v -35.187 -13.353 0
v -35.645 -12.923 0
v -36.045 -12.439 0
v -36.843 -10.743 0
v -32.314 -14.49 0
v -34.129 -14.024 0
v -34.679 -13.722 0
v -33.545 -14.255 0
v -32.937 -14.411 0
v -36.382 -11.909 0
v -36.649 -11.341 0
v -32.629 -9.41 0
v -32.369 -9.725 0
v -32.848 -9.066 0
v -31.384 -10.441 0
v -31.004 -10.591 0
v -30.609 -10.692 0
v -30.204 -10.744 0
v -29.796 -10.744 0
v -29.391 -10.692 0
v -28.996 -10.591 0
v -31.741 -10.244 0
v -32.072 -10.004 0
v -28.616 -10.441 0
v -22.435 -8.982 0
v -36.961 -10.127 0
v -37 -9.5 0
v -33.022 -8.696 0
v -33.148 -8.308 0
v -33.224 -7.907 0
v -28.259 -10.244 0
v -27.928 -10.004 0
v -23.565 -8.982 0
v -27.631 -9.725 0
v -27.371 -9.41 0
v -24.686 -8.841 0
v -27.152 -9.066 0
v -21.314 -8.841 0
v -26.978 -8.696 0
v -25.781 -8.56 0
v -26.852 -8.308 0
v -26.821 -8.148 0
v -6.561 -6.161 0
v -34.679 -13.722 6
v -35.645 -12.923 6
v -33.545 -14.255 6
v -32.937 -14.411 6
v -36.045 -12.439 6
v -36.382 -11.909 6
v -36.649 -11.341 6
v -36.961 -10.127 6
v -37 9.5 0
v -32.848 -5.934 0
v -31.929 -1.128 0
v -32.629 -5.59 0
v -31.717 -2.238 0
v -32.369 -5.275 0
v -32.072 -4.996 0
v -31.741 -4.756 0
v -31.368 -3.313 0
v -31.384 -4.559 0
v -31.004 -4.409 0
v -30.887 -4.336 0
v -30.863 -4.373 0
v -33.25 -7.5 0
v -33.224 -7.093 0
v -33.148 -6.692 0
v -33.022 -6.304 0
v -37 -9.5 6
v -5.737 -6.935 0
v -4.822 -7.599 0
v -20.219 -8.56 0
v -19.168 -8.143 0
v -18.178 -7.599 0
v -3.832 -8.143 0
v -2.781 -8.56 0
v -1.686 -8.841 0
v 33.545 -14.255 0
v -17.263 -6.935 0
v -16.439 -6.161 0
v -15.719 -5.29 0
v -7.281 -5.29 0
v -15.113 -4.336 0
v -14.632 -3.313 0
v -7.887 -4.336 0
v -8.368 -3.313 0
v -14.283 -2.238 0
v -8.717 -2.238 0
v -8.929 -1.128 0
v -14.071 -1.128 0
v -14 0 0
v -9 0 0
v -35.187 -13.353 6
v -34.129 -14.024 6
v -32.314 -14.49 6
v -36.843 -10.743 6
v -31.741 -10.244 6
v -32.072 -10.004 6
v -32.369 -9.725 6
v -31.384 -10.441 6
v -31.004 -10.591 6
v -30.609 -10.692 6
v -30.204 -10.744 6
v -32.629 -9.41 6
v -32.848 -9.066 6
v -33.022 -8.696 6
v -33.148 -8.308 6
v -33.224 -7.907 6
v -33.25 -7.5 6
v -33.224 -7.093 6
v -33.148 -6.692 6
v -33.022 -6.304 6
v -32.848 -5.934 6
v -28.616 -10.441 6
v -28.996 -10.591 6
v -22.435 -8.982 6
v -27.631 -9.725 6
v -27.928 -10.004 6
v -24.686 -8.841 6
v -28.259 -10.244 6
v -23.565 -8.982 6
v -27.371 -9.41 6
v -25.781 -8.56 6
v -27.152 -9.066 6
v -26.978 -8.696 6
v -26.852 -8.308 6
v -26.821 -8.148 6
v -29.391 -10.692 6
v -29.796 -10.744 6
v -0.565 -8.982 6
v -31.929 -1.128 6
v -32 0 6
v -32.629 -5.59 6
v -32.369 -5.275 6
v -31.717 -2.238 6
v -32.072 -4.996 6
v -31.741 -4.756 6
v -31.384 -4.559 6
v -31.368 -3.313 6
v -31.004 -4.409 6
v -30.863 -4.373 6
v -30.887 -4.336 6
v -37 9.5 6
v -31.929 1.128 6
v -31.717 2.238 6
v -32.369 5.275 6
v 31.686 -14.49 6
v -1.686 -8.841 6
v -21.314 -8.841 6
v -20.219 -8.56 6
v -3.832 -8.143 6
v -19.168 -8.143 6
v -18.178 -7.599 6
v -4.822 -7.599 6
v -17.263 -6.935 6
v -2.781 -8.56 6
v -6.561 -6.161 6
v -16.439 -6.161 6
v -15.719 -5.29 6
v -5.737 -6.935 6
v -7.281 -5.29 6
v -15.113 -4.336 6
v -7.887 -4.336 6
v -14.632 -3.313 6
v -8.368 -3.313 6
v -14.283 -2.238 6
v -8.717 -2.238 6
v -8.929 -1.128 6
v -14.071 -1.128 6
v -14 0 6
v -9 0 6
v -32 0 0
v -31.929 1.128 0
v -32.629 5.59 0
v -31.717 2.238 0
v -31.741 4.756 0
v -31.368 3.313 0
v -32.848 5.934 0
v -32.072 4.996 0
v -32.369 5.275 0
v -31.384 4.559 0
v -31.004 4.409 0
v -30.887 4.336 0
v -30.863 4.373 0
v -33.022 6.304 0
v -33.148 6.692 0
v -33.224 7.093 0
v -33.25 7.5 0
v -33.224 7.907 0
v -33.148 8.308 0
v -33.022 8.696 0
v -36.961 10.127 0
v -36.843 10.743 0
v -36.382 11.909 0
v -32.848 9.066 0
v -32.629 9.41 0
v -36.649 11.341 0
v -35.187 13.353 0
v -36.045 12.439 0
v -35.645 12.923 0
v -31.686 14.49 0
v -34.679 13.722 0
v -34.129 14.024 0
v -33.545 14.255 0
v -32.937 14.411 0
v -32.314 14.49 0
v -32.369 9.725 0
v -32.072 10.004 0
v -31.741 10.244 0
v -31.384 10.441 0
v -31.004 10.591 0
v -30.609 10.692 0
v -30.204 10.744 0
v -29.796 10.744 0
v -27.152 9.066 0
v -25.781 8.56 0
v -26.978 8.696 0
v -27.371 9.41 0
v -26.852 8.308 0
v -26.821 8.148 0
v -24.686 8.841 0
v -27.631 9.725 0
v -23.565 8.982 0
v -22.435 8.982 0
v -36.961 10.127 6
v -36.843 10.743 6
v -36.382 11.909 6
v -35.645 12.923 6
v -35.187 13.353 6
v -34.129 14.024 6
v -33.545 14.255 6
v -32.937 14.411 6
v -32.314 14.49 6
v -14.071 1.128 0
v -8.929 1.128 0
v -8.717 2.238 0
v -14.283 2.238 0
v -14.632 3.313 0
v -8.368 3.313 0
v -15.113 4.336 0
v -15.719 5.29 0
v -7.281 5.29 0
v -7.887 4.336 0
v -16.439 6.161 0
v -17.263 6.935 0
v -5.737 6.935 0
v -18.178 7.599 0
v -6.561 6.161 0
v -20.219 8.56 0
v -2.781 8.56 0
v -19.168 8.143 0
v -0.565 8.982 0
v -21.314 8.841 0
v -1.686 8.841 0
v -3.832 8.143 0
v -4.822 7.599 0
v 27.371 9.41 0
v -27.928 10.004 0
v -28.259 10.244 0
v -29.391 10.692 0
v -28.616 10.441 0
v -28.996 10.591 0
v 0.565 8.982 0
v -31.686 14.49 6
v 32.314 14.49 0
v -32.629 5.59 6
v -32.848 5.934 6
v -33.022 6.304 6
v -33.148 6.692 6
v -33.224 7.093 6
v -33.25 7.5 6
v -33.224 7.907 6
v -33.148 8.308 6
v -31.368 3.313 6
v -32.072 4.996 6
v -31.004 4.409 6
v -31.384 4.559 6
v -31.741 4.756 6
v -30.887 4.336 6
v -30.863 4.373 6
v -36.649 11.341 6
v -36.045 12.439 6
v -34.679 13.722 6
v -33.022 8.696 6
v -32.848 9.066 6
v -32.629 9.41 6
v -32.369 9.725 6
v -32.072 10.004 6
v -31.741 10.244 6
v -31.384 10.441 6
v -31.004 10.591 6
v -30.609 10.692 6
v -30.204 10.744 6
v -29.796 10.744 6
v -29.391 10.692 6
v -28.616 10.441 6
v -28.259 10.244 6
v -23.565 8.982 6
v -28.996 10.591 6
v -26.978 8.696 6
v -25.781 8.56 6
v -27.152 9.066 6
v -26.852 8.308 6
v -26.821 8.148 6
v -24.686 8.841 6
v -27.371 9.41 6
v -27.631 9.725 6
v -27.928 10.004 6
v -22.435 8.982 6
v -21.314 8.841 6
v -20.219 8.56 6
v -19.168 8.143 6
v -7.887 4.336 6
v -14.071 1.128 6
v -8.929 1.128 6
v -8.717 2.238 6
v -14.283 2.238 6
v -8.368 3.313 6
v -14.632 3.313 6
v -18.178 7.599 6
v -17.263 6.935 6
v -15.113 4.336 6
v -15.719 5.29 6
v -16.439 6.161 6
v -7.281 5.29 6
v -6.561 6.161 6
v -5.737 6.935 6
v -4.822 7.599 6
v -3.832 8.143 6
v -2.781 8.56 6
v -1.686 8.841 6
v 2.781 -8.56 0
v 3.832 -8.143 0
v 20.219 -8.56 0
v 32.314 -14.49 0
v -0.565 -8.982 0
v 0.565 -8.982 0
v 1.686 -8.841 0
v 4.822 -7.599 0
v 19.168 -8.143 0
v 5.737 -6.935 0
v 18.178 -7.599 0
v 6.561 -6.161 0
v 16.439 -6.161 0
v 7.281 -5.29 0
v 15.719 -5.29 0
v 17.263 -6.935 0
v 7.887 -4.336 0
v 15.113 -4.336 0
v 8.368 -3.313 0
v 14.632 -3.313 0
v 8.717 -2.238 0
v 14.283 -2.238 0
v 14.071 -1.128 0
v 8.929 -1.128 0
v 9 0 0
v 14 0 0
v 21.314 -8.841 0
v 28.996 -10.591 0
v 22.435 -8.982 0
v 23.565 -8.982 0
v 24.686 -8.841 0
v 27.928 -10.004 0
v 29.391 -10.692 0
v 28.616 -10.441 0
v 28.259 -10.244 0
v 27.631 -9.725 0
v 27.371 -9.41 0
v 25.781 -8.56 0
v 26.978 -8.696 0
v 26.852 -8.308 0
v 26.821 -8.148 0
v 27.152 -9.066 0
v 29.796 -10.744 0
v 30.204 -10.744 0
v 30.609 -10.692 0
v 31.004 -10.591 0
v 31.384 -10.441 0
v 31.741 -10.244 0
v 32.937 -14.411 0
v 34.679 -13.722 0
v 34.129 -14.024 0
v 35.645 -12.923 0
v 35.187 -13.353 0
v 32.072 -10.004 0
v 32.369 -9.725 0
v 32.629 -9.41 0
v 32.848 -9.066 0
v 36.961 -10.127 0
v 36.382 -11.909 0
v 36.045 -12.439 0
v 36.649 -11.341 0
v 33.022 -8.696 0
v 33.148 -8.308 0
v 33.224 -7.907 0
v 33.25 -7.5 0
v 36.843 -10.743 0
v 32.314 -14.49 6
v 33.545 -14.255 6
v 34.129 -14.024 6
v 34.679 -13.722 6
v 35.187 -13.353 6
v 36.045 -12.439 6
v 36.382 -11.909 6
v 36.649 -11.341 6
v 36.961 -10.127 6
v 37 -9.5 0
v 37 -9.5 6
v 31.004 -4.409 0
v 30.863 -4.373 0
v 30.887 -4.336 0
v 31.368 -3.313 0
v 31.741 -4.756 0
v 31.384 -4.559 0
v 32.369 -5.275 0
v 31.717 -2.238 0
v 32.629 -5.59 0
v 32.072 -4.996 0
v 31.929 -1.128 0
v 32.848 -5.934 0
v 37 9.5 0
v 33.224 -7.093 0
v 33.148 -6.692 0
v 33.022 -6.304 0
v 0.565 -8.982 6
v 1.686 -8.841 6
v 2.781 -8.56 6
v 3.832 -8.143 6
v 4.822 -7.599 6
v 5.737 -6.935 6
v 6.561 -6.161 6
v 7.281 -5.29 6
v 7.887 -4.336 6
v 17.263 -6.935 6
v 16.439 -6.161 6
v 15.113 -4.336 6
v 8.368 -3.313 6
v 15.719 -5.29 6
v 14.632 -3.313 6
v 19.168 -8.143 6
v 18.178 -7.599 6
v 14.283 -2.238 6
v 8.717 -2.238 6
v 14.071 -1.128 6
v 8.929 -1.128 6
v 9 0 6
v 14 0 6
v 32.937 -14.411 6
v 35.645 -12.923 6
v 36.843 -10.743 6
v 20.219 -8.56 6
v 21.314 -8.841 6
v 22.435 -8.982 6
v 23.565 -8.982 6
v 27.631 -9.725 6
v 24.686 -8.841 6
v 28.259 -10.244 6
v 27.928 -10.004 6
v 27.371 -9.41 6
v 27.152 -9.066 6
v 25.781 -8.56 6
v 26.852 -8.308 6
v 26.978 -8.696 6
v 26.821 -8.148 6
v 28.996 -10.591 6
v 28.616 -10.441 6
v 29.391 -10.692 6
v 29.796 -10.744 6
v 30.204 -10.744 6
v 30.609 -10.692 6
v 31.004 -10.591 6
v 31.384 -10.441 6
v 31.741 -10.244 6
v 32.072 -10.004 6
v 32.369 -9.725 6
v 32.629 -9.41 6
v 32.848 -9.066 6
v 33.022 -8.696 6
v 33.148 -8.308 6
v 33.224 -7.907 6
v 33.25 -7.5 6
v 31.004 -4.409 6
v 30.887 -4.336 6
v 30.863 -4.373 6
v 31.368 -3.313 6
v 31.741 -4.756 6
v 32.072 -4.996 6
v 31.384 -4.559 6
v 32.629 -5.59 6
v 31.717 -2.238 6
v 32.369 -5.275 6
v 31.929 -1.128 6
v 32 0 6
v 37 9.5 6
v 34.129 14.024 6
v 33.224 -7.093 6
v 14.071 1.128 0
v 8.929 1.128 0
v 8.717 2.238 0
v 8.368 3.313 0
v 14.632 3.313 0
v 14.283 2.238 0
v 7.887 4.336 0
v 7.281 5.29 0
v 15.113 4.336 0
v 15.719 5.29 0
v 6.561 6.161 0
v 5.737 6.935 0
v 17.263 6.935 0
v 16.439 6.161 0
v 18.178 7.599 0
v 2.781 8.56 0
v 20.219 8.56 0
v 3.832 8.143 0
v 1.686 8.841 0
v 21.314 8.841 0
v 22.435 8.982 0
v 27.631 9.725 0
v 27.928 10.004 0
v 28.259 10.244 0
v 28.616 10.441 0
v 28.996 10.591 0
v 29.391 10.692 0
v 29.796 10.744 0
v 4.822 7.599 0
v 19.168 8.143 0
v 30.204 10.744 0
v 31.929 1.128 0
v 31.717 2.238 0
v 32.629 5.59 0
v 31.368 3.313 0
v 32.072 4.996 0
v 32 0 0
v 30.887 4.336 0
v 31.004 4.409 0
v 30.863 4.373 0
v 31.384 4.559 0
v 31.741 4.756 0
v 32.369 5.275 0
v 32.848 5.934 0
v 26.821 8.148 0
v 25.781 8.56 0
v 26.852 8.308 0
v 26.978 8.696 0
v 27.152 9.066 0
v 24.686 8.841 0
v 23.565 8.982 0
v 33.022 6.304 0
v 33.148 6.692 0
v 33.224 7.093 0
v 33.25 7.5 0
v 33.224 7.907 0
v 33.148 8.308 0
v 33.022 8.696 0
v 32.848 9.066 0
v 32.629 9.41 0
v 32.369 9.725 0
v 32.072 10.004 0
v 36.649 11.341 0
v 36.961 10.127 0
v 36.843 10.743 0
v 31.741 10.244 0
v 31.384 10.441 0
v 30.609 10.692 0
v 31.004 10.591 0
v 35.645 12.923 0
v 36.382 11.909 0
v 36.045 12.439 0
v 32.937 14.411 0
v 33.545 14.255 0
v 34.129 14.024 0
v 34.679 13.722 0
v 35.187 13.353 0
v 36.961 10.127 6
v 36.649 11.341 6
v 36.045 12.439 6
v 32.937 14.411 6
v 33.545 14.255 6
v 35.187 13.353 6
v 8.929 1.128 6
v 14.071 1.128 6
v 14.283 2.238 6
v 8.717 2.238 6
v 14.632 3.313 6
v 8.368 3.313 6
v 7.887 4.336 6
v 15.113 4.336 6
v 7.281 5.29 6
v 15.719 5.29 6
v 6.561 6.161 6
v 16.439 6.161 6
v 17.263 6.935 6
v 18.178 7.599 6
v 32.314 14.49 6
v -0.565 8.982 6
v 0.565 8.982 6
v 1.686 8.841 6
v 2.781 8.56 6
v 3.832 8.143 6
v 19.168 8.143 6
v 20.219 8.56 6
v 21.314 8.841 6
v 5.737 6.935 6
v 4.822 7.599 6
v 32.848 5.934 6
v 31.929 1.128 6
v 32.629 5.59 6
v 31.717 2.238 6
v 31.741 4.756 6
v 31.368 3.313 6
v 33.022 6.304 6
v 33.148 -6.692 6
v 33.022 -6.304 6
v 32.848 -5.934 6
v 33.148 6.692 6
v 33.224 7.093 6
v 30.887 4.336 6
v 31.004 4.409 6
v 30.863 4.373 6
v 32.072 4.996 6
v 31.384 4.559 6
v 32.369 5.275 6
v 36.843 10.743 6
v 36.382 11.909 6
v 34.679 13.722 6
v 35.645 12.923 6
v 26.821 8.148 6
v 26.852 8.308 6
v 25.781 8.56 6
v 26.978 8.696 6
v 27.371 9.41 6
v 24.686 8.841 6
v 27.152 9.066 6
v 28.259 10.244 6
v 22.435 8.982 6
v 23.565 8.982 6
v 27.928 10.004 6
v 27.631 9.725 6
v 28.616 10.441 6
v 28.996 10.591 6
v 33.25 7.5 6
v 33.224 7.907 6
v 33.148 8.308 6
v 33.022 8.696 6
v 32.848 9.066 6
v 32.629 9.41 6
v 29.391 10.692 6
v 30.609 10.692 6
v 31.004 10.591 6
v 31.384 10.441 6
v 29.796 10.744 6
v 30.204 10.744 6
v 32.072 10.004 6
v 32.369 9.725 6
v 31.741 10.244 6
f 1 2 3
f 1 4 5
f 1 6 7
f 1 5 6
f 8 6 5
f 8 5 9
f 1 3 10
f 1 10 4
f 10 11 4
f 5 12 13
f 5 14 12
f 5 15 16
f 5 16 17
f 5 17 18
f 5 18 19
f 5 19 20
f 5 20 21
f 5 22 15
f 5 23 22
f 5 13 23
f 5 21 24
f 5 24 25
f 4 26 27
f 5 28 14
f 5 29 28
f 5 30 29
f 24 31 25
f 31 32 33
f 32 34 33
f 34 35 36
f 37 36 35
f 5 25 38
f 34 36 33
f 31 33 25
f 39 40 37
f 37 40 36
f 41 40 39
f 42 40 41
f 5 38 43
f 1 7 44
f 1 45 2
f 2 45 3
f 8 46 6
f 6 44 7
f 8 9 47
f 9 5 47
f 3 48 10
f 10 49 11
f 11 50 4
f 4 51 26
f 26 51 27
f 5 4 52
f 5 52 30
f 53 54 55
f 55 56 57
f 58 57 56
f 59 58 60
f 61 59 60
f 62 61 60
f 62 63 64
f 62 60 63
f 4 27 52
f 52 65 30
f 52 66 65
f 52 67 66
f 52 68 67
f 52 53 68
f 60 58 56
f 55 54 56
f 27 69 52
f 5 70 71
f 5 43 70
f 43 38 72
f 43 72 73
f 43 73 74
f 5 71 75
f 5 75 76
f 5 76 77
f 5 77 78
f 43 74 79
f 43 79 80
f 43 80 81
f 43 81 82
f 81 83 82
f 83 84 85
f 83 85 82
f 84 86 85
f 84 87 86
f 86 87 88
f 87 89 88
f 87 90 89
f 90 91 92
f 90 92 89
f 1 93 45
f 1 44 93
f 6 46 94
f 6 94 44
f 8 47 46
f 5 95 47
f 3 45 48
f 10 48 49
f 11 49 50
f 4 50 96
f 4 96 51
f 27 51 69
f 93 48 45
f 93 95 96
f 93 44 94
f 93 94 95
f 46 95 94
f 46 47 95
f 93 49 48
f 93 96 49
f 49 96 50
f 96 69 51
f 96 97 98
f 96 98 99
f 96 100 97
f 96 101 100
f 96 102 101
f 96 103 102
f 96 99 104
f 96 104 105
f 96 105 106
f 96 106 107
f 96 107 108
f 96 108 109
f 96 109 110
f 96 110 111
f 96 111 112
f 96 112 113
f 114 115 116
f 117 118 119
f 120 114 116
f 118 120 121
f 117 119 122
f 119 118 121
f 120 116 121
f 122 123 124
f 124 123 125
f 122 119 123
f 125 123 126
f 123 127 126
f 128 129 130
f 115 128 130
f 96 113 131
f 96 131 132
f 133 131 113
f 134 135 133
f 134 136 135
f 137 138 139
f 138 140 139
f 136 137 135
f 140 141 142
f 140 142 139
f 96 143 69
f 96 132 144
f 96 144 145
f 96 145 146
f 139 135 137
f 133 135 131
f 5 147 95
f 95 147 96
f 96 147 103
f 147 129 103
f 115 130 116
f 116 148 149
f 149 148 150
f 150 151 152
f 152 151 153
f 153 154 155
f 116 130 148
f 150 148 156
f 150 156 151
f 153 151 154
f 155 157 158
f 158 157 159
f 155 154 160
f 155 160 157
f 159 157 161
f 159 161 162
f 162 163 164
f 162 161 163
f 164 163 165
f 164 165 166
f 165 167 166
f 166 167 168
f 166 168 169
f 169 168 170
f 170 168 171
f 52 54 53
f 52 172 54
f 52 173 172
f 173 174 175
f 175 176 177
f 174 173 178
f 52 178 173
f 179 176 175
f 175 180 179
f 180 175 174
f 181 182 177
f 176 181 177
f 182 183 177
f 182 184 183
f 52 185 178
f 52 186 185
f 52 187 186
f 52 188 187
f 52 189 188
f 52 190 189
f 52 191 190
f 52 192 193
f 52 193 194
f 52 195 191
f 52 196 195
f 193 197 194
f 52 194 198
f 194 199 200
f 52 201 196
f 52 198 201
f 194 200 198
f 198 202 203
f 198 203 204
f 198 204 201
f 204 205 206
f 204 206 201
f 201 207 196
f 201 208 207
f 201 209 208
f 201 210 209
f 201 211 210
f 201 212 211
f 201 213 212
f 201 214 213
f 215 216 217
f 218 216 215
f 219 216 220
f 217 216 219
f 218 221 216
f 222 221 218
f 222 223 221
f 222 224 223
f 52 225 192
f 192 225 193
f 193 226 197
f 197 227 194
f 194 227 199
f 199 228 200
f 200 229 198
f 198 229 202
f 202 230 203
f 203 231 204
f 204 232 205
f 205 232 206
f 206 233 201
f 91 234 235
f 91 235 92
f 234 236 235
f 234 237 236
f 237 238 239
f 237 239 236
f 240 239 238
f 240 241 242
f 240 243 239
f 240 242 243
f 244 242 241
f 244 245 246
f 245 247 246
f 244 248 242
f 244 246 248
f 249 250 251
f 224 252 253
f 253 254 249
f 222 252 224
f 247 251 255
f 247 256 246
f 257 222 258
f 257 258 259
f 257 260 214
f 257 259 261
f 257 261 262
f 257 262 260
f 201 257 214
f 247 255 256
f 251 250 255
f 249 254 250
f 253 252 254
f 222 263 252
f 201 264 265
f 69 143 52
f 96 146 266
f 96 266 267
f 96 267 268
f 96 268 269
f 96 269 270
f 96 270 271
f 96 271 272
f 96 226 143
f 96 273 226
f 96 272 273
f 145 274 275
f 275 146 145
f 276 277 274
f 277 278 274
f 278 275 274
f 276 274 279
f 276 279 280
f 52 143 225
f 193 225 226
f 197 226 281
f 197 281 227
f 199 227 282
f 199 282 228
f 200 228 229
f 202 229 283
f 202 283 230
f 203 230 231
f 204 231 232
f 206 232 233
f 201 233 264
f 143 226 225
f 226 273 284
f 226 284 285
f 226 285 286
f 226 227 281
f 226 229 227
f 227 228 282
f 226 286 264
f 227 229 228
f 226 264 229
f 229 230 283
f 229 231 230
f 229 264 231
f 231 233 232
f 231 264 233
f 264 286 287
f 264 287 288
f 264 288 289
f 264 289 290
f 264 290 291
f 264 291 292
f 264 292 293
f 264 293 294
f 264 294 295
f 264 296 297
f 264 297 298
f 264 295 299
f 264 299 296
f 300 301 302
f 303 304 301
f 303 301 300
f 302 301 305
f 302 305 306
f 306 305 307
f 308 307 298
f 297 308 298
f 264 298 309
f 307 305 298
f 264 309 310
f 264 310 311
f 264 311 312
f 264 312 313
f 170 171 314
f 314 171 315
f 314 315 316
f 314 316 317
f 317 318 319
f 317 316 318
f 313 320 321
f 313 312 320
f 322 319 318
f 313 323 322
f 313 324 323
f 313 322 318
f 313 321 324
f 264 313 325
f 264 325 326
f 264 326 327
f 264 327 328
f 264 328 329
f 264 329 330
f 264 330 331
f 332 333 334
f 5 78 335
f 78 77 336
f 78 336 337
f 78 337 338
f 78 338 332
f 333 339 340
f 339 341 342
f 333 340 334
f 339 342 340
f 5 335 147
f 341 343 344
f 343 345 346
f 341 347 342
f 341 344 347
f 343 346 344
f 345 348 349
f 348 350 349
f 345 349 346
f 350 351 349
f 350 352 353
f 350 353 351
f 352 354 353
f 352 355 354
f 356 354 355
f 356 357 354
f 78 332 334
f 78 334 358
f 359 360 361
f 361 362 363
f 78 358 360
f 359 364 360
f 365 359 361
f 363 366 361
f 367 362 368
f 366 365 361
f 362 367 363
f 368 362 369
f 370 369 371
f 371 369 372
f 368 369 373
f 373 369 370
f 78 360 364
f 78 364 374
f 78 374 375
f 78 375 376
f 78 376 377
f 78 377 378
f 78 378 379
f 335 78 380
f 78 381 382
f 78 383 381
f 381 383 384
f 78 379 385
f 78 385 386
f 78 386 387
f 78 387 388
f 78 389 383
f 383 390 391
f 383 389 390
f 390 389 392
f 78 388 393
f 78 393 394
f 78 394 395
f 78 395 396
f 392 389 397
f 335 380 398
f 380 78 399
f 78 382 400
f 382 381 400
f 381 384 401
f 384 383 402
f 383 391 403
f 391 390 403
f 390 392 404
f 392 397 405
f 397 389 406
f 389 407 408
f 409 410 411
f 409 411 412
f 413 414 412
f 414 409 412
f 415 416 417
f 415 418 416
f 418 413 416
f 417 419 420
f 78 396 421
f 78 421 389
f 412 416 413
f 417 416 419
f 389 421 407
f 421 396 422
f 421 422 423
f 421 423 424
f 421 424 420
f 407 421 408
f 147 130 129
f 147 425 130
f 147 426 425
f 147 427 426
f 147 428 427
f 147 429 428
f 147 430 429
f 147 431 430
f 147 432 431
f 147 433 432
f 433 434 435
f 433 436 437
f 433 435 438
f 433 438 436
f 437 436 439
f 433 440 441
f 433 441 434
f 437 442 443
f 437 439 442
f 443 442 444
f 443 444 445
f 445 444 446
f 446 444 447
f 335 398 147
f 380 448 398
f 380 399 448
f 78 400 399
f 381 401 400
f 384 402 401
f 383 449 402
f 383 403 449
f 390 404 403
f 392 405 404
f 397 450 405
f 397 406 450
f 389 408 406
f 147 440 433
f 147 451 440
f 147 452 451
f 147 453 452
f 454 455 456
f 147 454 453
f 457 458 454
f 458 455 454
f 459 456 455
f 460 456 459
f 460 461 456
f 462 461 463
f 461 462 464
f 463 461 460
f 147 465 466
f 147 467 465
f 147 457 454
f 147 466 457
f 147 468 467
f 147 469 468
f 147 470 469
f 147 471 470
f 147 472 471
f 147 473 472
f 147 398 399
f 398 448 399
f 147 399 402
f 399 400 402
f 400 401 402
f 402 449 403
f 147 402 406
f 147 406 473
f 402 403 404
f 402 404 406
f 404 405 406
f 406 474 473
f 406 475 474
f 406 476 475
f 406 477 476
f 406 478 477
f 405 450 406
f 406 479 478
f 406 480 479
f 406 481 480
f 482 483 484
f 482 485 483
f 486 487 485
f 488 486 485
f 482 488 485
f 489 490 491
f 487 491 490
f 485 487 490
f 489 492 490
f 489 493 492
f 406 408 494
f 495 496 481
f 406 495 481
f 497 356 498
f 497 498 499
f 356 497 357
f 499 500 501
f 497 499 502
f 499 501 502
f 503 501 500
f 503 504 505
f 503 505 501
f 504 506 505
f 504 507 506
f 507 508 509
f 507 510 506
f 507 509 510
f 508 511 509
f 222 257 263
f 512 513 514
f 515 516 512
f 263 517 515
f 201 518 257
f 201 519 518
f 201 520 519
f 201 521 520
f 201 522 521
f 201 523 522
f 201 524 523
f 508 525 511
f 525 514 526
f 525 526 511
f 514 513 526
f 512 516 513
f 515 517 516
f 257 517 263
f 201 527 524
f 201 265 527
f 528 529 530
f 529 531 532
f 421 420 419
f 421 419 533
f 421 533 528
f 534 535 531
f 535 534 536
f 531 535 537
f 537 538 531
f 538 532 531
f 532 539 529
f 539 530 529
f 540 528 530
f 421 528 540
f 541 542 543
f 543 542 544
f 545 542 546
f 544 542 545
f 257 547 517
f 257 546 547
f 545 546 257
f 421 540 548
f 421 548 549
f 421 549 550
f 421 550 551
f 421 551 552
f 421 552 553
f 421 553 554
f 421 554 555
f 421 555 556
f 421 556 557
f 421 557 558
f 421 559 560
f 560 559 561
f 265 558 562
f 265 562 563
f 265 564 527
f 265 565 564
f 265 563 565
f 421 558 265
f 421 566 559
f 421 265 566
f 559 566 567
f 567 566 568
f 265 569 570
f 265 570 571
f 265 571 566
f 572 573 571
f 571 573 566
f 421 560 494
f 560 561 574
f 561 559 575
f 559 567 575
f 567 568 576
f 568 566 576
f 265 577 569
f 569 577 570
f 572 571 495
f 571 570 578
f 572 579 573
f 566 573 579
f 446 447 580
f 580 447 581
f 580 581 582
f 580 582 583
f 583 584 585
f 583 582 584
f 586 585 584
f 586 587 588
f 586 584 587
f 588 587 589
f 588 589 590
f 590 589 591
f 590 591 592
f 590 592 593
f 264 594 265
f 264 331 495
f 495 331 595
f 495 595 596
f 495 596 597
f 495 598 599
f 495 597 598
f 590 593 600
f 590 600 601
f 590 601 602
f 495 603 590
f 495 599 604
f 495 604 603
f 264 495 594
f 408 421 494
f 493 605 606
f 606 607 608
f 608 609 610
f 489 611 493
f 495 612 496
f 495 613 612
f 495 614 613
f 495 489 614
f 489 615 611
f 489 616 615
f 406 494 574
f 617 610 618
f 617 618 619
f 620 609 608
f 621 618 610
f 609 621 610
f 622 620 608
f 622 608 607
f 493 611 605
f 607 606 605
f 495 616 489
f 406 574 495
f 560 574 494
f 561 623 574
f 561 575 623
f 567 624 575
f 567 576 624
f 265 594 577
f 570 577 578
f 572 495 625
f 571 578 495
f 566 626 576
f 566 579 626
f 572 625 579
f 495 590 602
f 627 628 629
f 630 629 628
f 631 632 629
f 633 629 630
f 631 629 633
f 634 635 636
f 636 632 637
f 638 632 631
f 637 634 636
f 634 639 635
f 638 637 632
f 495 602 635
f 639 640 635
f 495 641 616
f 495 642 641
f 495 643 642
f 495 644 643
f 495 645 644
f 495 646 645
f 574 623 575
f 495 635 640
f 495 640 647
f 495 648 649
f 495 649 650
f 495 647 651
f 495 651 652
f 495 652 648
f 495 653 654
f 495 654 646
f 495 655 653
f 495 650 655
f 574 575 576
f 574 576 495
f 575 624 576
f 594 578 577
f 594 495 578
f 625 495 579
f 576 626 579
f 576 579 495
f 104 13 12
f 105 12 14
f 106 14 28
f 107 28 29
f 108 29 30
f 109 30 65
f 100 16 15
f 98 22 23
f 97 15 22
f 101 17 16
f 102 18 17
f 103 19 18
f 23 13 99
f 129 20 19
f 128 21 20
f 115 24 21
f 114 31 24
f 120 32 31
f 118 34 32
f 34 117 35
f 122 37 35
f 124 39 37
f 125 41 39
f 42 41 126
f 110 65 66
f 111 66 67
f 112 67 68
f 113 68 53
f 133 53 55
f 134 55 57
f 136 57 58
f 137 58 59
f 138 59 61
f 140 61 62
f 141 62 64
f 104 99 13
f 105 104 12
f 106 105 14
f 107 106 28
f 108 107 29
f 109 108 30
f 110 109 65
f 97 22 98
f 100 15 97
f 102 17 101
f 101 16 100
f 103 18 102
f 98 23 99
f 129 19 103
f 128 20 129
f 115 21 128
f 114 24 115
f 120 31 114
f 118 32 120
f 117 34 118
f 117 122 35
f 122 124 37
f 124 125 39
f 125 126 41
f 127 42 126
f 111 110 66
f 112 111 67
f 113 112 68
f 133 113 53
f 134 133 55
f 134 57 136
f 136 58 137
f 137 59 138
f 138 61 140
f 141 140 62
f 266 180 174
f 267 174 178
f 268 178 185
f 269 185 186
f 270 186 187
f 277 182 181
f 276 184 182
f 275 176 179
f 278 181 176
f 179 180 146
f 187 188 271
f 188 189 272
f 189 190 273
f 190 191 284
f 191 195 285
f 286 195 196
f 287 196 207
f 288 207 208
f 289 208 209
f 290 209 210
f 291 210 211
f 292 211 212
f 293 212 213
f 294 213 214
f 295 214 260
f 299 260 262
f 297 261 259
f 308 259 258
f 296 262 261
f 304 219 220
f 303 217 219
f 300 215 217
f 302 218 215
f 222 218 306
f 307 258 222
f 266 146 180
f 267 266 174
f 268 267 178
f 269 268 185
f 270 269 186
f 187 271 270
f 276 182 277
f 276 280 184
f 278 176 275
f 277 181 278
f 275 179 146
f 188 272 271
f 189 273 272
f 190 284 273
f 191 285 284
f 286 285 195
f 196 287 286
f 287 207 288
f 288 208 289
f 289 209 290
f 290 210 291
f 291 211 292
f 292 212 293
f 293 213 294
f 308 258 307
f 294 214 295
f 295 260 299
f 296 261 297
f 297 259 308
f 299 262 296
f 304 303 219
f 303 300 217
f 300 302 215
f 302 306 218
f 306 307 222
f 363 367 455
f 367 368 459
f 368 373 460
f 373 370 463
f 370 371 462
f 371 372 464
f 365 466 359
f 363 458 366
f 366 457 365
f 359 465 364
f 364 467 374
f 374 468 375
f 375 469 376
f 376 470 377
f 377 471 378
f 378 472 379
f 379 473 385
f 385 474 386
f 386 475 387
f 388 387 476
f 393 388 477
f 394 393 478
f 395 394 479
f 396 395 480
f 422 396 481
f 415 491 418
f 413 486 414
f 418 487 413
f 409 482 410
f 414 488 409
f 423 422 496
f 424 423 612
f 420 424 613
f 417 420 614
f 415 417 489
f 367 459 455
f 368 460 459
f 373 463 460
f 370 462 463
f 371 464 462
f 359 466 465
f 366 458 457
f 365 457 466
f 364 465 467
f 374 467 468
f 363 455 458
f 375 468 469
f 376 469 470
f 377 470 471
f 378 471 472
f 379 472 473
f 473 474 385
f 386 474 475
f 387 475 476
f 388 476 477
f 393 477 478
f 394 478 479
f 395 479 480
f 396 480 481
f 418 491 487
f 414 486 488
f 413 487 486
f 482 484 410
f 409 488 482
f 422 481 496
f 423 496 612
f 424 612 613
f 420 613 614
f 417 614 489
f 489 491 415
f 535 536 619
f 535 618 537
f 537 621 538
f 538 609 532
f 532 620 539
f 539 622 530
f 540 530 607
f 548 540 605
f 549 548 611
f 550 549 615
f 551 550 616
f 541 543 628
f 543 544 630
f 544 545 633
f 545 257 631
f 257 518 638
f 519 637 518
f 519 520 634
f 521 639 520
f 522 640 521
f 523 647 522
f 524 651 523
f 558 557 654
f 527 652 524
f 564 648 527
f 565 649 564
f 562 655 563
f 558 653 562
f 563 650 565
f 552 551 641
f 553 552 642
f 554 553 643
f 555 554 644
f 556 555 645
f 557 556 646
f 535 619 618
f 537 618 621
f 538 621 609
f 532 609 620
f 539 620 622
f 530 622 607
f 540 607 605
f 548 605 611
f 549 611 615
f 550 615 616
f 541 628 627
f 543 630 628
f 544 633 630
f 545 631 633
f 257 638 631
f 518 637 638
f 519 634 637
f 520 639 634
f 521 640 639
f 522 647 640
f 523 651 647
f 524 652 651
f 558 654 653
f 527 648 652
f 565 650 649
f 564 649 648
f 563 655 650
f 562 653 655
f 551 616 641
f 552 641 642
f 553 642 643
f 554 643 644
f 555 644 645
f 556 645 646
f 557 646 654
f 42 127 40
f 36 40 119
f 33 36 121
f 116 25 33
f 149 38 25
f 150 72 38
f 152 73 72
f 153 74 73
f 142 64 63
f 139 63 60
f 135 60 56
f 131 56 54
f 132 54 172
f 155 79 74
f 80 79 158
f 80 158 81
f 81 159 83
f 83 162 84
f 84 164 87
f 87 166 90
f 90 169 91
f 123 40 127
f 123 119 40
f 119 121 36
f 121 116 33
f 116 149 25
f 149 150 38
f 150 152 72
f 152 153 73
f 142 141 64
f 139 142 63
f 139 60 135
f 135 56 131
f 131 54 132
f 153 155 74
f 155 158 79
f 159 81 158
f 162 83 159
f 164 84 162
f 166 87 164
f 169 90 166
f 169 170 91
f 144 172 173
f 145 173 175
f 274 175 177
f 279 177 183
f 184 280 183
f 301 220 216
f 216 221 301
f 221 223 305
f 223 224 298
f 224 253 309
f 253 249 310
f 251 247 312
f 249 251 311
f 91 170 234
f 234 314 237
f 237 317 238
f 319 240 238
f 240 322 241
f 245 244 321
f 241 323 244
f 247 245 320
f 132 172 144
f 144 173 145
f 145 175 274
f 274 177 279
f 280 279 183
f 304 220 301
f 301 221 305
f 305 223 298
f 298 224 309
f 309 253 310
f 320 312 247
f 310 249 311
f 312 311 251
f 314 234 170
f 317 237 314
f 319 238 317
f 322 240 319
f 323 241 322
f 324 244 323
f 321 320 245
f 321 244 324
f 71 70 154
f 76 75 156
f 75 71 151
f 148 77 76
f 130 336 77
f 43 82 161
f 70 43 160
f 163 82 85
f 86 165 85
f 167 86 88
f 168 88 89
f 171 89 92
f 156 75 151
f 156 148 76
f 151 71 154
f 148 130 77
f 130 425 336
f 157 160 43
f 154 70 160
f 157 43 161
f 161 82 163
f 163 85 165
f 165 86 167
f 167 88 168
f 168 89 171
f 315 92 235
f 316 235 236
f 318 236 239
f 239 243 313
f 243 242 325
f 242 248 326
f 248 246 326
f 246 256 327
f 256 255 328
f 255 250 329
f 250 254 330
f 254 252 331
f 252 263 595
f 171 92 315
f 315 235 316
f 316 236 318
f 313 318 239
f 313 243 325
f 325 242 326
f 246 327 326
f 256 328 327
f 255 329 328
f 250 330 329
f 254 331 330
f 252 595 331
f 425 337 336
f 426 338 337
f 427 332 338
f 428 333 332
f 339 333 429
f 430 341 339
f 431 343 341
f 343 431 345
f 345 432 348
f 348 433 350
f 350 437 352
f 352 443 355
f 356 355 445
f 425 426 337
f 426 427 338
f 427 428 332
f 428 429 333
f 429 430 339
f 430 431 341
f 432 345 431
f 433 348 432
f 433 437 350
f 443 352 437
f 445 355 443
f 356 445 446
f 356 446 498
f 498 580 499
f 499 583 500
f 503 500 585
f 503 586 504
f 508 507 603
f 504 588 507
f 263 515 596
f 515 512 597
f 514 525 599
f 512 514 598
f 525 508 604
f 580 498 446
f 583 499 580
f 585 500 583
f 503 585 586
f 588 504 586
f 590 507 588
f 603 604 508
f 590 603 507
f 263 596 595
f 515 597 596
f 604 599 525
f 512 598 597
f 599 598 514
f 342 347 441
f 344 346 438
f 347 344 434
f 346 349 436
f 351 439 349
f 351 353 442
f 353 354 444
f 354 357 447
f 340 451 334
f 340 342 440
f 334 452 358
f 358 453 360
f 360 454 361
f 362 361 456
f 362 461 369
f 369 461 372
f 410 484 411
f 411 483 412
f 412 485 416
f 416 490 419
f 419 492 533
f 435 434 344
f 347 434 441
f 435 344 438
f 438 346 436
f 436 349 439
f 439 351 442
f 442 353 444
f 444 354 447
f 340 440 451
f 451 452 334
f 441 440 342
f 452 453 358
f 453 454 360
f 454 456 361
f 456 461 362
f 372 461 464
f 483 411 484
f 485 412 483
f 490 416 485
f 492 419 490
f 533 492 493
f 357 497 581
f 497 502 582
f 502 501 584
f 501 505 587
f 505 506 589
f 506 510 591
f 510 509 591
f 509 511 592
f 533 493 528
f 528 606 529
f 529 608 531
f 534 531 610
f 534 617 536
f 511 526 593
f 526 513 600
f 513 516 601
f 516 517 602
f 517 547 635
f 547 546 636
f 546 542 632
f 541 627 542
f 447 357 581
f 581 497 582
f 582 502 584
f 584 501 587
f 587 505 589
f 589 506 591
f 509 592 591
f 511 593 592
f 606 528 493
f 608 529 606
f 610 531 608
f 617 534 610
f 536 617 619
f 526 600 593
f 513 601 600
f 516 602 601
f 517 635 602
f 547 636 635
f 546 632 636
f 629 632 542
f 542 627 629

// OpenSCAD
$fn = 50;

difference() {
	union() {
		hull() {
			translate(v = [-32.0, 9.5, 0]) {
				cylinder(h = 6, r = 5);
			}
			translate(v = [32.0, 9.5, 0]) {
				cylinder(h = 6, r = 5);
			}
			translate(v = [-32.0, -9.5, 0]) {
				cylinder(h = 6, r = 5);
			}
			translate(v = [32.0, -9.5, 0]) {
				cylinder(h = 6, r = 5);
			}
		}
	}
	union() {
		translate(v = [-30.0, -7.5, -100.0]) {
			cylinder(h = 200, r = 3.25);
		}
		translate(v = [-30.0, 7.5, -100.0]) {
			cylinder(h = 200, r = 3.25);
		}
		translate(v = [30.0, -7.5, -100.0]) {
			cylinder(h = 200, r = 3.25);
		}
		translate(v = [30.0, 7.5, -100.0]) {
			cylinder(h = 200, r = 3.25);
		}
		translate(v = [-30.0, -7.5, -100.0]) {
			cylinder(h = 200, r = 1.8);
		}
		translate(v = [-30.0, 7.5, -100.0]) {
			cylinder(h = 200, r = 1.8);
		}
		translate(v = [30.0, -7.5, -100.0]) {
			cylinder(h = 200, r = 1.8);
		}
		translate(v = [30.0, 7.5, -100.0]) {
			cylinder(h = 200, r = 1.8);
		}
		translate(v = [-23.0, 0, 0.0]) {
			cylinder(h = 6, r = 9.0);
		}
		cylinder(h = 6, r = 9.0);
		translate(v = [23.0, 0, 0.0]) {
			cylinder(h = 6, r = 9.0);
		}
	}
}
